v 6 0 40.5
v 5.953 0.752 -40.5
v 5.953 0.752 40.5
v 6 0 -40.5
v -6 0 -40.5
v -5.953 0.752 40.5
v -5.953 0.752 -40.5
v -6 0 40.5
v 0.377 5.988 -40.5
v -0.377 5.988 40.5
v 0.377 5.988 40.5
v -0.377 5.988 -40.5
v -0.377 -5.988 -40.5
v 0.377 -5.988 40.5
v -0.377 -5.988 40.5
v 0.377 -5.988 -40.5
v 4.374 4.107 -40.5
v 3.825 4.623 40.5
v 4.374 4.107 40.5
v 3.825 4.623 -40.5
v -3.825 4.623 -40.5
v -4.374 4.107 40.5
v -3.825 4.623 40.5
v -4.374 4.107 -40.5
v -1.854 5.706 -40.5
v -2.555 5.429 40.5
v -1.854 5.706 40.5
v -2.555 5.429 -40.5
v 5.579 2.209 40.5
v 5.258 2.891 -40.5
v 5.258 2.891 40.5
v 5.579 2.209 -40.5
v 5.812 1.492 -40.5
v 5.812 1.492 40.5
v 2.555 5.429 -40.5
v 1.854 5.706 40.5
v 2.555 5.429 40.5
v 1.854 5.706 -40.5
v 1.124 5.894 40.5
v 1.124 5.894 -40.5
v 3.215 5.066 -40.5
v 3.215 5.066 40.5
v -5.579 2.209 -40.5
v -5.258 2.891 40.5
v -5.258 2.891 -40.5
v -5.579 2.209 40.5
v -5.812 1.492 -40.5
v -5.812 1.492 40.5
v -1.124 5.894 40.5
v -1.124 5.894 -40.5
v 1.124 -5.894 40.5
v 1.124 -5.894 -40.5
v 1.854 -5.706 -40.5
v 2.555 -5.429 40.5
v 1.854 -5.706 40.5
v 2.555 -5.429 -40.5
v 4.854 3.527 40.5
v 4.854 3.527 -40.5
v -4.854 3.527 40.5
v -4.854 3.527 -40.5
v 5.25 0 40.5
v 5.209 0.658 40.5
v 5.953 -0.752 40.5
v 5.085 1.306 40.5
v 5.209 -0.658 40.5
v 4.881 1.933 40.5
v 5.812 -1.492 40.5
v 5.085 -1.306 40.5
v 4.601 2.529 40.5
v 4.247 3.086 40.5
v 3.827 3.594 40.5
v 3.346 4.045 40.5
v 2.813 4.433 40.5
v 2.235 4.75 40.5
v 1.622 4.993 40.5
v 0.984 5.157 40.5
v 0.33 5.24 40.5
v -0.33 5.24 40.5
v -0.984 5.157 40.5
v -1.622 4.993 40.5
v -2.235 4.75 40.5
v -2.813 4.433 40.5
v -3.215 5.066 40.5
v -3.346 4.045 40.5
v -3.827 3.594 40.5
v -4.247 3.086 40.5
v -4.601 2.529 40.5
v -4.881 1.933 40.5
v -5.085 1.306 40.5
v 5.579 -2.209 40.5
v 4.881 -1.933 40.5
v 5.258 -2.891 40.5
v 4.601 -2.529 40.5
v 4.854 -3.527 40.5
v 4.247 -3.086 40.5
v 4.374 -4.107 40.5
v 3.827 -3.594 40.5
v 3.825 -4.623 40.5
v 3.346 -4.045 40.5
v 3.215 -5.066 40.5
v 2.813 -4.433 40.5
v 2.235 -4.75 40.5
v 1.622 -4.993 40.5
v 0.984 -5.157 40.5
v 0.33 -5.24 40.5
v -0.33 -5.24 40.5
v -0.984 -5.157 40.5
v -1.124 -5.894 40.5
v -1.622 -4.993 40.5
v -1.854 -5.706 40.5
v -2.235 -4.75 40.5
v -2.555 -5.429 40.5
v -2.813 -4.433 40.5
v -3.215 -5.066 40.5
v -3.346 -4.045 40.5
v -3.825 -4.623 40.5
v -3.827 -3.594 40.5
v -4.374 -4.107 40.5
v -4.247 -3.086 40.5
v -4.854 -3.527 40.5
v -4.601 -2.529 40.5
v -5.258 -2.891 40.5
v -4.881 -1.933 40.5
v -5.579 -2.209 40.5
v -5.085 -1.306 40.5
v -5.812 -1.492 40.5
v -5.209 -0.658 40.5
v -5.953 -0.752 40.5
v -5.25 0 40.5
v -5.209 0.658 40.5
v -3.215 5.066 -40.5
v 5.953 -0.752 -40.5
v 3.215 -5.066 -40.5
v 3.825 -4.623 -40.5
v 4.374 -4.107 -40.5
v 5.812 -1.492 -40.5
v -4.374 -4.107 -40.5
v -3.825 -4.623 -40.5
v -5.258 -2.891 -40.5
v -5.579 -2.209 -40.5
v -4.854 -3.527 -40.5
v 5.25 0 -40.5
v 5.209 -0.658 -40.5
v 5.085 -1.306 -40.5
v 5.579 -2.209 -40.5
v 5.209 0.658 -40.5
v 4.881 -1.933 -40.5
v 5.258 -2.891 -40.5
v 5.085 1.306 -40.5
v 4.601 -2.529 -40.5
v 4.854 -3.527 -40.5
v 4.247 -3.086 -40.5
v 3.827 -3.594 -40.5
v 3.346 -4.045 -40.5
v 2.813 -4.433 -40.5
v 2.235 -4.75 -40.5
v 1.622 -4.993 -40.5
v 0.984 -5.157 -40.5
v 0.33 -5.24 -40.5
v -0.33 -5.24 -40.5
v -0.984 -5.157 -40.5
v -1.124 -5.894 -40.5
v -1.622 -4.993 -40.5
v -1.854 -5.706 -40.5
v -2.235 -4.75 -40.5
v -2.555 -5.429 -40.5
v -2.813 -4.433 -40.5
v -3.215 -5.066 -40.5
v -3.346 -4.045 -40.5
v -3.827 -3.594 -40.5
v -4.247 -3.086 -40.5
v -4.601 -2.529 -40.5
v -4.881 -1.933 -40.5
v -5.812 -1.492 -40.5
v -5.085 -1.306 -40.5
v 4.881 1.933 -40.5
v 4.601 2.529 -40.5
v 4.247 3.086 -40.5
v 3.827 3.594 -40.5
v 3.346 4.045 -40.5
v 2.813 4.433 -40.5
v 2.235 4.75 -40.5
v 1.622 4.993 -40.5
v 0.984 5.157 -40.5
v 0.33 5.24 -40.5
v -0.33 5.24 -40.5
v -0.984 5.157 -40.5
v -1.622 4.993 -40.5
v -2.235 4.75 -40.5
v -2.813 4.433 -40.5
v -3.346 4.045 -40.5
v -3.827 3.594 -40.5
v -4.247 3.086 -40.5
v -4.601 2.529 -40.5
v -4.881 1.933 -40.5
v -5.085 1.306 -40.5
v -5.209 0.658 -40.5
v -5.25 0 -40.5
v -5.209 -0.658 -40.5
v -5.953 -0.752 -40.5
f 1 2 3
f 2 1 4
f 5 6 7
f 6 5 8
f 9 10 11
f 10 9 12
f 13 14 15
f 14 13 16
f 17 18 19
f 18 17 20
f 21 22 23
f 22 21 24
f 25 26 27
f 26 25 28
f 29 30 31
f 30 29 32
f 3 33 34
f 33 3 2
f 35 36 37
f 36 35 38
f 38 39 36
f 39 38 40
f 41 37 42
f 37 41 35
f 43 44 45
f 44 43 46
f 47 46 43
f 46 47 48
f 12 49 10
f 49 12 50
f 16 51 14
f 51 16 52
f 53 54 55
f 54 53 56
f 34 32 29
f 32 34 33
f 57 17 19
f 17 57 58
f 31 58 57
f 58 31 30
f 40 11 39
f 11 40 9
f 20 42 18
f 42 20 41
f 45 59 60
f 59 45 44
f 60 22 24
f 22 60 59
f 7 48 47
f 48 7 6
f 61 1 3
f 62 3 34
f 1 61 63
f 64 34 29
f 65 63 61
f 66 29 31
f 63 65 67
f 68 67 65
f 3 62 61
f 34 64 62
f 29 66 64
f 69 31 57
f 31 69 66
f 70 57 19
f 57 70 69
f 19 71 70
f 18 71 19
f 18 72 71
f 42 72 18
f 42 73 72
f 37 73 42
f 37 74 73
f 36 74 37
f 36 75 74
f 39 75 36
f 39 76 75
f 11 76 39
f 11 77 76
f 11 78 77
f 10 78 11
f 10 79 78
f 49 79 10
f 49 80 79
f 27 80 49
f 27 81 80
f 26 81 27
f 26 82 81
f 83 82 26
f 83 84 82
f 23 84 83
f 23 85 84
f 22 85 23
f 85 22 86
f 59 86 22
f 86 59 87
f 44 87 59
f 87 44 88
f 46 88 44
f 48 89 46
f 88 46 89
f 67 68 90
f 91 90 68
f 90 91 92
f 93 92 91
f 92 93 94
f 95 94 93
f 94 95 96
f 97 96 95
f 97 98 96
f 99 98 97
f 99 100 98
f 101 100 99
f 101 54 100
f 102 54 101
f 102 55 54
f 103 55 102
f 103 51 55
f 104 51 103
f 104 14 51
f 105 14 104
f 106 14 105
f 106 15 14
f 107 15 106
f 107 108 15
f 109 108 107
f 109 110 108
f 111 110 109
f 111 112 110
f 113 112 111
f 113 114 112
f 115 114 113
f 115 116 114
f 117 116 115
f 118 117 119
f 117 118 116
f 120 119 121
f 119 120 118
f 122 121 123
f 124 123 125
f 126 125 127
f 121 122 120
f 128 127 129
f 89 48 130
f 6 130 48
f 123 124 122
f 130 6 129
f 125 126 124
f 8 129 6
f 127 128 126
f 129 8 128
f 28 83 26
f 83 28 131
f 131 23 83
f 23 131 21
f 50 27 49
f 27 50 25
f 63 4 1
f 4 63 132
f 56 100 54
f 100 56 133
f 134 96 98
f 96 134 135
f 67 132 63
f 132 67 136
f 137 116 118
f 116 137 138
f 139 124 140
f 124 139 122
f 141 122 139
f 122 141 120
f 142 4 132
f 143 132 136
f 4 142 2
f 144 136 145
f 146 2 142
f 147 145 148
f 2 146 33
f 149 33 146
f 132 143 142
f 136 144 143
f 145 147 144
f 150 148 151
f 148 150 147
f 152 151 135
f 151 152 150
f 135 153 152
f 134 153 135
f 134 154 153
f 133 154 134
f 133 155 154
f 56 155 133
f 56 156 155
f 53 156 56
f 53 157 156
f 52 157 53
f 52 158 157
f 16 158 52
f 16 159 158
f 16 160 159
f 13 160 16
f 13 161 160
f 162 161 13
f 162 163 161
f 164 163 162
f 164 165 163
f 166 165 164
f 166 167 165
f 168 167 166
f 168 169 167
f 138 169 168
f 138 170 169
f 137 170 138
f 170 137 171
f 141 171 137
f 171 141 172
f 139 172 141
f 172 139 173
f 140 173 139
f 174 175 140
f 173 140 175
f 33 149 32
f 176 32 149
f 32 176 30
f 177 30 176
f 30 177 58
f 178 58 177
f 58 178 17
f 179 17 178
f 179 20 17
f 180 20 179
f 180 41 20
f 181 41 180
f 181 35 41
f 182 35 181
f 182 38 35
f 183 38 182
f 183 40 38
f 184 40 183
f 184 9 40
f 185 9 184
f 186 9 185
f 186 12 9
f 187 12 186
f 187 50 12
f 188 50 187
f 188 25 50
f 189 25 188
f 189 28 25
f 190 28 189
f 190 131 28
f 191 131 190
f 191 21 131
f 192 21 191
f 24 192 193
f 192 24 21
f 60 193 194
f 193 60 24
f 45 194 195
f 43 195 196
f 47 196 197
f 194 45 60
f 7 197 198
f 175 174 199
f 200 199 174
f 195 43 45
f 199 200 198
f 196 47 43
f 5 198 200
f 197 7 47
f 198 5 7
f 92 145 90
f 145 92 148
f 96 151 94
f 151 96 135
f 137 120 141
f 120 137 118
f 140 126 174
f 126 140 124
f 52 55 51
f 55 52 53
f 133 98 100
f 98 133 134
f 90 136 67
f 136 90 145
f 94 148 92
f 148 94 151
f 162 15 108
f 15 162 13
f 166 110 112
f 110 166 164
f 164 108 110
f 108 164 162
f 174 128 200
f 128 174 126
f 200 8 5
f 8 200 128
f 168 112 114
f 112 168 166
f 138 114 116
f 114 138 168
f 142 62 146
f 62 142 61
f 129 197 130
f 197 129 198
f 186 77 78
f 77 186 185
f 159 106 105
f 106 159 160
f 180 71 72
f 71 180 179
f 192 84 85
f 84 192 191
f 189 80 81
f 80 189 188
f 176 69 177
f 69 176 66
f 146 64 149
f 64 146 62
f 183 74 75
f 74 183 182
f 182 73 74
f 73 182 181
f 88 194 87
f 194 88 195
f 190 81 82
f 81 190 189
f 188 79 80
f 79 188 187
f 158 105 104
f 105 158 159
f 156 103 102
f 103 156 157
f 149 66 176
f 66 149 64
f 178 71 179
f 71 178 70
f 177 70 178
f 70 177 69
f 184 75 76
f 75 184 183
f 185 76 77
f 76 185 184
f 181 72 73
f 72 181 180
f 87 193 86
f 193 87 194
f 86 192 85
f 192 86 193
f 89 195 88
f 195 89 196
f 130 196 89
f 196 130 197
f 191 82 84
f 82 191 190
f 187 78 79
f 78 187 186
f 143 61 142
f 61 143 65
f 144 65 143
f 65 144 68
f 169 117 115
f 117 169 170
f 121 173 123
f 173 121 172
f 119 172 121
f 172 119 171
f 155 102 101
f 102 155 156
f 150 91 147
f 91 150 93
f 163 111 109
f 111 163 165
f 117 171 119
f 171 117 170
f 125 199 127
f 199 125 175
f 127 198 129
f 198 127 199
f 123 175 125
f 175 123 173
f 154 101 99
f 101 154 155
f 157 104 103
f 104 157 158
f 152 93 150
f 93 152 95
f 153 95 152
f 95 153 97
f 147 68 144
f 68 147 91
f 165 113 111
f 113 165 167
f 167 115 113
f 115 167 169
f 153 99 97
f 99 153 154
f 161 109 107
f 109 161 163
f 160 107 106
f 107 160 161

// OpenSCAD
$fn = 50;


difference() {
	union() {
		translate(v = [0, 0, -40.5000000000]) {
			cylinder(h = 81, r = 6.0000000000);
		}
	}
	union() {
		translate(v = [0, 0, -100.0000000000]) {
			cylinder(h = 200, r = 5.2500000000);
		}
	}
}
